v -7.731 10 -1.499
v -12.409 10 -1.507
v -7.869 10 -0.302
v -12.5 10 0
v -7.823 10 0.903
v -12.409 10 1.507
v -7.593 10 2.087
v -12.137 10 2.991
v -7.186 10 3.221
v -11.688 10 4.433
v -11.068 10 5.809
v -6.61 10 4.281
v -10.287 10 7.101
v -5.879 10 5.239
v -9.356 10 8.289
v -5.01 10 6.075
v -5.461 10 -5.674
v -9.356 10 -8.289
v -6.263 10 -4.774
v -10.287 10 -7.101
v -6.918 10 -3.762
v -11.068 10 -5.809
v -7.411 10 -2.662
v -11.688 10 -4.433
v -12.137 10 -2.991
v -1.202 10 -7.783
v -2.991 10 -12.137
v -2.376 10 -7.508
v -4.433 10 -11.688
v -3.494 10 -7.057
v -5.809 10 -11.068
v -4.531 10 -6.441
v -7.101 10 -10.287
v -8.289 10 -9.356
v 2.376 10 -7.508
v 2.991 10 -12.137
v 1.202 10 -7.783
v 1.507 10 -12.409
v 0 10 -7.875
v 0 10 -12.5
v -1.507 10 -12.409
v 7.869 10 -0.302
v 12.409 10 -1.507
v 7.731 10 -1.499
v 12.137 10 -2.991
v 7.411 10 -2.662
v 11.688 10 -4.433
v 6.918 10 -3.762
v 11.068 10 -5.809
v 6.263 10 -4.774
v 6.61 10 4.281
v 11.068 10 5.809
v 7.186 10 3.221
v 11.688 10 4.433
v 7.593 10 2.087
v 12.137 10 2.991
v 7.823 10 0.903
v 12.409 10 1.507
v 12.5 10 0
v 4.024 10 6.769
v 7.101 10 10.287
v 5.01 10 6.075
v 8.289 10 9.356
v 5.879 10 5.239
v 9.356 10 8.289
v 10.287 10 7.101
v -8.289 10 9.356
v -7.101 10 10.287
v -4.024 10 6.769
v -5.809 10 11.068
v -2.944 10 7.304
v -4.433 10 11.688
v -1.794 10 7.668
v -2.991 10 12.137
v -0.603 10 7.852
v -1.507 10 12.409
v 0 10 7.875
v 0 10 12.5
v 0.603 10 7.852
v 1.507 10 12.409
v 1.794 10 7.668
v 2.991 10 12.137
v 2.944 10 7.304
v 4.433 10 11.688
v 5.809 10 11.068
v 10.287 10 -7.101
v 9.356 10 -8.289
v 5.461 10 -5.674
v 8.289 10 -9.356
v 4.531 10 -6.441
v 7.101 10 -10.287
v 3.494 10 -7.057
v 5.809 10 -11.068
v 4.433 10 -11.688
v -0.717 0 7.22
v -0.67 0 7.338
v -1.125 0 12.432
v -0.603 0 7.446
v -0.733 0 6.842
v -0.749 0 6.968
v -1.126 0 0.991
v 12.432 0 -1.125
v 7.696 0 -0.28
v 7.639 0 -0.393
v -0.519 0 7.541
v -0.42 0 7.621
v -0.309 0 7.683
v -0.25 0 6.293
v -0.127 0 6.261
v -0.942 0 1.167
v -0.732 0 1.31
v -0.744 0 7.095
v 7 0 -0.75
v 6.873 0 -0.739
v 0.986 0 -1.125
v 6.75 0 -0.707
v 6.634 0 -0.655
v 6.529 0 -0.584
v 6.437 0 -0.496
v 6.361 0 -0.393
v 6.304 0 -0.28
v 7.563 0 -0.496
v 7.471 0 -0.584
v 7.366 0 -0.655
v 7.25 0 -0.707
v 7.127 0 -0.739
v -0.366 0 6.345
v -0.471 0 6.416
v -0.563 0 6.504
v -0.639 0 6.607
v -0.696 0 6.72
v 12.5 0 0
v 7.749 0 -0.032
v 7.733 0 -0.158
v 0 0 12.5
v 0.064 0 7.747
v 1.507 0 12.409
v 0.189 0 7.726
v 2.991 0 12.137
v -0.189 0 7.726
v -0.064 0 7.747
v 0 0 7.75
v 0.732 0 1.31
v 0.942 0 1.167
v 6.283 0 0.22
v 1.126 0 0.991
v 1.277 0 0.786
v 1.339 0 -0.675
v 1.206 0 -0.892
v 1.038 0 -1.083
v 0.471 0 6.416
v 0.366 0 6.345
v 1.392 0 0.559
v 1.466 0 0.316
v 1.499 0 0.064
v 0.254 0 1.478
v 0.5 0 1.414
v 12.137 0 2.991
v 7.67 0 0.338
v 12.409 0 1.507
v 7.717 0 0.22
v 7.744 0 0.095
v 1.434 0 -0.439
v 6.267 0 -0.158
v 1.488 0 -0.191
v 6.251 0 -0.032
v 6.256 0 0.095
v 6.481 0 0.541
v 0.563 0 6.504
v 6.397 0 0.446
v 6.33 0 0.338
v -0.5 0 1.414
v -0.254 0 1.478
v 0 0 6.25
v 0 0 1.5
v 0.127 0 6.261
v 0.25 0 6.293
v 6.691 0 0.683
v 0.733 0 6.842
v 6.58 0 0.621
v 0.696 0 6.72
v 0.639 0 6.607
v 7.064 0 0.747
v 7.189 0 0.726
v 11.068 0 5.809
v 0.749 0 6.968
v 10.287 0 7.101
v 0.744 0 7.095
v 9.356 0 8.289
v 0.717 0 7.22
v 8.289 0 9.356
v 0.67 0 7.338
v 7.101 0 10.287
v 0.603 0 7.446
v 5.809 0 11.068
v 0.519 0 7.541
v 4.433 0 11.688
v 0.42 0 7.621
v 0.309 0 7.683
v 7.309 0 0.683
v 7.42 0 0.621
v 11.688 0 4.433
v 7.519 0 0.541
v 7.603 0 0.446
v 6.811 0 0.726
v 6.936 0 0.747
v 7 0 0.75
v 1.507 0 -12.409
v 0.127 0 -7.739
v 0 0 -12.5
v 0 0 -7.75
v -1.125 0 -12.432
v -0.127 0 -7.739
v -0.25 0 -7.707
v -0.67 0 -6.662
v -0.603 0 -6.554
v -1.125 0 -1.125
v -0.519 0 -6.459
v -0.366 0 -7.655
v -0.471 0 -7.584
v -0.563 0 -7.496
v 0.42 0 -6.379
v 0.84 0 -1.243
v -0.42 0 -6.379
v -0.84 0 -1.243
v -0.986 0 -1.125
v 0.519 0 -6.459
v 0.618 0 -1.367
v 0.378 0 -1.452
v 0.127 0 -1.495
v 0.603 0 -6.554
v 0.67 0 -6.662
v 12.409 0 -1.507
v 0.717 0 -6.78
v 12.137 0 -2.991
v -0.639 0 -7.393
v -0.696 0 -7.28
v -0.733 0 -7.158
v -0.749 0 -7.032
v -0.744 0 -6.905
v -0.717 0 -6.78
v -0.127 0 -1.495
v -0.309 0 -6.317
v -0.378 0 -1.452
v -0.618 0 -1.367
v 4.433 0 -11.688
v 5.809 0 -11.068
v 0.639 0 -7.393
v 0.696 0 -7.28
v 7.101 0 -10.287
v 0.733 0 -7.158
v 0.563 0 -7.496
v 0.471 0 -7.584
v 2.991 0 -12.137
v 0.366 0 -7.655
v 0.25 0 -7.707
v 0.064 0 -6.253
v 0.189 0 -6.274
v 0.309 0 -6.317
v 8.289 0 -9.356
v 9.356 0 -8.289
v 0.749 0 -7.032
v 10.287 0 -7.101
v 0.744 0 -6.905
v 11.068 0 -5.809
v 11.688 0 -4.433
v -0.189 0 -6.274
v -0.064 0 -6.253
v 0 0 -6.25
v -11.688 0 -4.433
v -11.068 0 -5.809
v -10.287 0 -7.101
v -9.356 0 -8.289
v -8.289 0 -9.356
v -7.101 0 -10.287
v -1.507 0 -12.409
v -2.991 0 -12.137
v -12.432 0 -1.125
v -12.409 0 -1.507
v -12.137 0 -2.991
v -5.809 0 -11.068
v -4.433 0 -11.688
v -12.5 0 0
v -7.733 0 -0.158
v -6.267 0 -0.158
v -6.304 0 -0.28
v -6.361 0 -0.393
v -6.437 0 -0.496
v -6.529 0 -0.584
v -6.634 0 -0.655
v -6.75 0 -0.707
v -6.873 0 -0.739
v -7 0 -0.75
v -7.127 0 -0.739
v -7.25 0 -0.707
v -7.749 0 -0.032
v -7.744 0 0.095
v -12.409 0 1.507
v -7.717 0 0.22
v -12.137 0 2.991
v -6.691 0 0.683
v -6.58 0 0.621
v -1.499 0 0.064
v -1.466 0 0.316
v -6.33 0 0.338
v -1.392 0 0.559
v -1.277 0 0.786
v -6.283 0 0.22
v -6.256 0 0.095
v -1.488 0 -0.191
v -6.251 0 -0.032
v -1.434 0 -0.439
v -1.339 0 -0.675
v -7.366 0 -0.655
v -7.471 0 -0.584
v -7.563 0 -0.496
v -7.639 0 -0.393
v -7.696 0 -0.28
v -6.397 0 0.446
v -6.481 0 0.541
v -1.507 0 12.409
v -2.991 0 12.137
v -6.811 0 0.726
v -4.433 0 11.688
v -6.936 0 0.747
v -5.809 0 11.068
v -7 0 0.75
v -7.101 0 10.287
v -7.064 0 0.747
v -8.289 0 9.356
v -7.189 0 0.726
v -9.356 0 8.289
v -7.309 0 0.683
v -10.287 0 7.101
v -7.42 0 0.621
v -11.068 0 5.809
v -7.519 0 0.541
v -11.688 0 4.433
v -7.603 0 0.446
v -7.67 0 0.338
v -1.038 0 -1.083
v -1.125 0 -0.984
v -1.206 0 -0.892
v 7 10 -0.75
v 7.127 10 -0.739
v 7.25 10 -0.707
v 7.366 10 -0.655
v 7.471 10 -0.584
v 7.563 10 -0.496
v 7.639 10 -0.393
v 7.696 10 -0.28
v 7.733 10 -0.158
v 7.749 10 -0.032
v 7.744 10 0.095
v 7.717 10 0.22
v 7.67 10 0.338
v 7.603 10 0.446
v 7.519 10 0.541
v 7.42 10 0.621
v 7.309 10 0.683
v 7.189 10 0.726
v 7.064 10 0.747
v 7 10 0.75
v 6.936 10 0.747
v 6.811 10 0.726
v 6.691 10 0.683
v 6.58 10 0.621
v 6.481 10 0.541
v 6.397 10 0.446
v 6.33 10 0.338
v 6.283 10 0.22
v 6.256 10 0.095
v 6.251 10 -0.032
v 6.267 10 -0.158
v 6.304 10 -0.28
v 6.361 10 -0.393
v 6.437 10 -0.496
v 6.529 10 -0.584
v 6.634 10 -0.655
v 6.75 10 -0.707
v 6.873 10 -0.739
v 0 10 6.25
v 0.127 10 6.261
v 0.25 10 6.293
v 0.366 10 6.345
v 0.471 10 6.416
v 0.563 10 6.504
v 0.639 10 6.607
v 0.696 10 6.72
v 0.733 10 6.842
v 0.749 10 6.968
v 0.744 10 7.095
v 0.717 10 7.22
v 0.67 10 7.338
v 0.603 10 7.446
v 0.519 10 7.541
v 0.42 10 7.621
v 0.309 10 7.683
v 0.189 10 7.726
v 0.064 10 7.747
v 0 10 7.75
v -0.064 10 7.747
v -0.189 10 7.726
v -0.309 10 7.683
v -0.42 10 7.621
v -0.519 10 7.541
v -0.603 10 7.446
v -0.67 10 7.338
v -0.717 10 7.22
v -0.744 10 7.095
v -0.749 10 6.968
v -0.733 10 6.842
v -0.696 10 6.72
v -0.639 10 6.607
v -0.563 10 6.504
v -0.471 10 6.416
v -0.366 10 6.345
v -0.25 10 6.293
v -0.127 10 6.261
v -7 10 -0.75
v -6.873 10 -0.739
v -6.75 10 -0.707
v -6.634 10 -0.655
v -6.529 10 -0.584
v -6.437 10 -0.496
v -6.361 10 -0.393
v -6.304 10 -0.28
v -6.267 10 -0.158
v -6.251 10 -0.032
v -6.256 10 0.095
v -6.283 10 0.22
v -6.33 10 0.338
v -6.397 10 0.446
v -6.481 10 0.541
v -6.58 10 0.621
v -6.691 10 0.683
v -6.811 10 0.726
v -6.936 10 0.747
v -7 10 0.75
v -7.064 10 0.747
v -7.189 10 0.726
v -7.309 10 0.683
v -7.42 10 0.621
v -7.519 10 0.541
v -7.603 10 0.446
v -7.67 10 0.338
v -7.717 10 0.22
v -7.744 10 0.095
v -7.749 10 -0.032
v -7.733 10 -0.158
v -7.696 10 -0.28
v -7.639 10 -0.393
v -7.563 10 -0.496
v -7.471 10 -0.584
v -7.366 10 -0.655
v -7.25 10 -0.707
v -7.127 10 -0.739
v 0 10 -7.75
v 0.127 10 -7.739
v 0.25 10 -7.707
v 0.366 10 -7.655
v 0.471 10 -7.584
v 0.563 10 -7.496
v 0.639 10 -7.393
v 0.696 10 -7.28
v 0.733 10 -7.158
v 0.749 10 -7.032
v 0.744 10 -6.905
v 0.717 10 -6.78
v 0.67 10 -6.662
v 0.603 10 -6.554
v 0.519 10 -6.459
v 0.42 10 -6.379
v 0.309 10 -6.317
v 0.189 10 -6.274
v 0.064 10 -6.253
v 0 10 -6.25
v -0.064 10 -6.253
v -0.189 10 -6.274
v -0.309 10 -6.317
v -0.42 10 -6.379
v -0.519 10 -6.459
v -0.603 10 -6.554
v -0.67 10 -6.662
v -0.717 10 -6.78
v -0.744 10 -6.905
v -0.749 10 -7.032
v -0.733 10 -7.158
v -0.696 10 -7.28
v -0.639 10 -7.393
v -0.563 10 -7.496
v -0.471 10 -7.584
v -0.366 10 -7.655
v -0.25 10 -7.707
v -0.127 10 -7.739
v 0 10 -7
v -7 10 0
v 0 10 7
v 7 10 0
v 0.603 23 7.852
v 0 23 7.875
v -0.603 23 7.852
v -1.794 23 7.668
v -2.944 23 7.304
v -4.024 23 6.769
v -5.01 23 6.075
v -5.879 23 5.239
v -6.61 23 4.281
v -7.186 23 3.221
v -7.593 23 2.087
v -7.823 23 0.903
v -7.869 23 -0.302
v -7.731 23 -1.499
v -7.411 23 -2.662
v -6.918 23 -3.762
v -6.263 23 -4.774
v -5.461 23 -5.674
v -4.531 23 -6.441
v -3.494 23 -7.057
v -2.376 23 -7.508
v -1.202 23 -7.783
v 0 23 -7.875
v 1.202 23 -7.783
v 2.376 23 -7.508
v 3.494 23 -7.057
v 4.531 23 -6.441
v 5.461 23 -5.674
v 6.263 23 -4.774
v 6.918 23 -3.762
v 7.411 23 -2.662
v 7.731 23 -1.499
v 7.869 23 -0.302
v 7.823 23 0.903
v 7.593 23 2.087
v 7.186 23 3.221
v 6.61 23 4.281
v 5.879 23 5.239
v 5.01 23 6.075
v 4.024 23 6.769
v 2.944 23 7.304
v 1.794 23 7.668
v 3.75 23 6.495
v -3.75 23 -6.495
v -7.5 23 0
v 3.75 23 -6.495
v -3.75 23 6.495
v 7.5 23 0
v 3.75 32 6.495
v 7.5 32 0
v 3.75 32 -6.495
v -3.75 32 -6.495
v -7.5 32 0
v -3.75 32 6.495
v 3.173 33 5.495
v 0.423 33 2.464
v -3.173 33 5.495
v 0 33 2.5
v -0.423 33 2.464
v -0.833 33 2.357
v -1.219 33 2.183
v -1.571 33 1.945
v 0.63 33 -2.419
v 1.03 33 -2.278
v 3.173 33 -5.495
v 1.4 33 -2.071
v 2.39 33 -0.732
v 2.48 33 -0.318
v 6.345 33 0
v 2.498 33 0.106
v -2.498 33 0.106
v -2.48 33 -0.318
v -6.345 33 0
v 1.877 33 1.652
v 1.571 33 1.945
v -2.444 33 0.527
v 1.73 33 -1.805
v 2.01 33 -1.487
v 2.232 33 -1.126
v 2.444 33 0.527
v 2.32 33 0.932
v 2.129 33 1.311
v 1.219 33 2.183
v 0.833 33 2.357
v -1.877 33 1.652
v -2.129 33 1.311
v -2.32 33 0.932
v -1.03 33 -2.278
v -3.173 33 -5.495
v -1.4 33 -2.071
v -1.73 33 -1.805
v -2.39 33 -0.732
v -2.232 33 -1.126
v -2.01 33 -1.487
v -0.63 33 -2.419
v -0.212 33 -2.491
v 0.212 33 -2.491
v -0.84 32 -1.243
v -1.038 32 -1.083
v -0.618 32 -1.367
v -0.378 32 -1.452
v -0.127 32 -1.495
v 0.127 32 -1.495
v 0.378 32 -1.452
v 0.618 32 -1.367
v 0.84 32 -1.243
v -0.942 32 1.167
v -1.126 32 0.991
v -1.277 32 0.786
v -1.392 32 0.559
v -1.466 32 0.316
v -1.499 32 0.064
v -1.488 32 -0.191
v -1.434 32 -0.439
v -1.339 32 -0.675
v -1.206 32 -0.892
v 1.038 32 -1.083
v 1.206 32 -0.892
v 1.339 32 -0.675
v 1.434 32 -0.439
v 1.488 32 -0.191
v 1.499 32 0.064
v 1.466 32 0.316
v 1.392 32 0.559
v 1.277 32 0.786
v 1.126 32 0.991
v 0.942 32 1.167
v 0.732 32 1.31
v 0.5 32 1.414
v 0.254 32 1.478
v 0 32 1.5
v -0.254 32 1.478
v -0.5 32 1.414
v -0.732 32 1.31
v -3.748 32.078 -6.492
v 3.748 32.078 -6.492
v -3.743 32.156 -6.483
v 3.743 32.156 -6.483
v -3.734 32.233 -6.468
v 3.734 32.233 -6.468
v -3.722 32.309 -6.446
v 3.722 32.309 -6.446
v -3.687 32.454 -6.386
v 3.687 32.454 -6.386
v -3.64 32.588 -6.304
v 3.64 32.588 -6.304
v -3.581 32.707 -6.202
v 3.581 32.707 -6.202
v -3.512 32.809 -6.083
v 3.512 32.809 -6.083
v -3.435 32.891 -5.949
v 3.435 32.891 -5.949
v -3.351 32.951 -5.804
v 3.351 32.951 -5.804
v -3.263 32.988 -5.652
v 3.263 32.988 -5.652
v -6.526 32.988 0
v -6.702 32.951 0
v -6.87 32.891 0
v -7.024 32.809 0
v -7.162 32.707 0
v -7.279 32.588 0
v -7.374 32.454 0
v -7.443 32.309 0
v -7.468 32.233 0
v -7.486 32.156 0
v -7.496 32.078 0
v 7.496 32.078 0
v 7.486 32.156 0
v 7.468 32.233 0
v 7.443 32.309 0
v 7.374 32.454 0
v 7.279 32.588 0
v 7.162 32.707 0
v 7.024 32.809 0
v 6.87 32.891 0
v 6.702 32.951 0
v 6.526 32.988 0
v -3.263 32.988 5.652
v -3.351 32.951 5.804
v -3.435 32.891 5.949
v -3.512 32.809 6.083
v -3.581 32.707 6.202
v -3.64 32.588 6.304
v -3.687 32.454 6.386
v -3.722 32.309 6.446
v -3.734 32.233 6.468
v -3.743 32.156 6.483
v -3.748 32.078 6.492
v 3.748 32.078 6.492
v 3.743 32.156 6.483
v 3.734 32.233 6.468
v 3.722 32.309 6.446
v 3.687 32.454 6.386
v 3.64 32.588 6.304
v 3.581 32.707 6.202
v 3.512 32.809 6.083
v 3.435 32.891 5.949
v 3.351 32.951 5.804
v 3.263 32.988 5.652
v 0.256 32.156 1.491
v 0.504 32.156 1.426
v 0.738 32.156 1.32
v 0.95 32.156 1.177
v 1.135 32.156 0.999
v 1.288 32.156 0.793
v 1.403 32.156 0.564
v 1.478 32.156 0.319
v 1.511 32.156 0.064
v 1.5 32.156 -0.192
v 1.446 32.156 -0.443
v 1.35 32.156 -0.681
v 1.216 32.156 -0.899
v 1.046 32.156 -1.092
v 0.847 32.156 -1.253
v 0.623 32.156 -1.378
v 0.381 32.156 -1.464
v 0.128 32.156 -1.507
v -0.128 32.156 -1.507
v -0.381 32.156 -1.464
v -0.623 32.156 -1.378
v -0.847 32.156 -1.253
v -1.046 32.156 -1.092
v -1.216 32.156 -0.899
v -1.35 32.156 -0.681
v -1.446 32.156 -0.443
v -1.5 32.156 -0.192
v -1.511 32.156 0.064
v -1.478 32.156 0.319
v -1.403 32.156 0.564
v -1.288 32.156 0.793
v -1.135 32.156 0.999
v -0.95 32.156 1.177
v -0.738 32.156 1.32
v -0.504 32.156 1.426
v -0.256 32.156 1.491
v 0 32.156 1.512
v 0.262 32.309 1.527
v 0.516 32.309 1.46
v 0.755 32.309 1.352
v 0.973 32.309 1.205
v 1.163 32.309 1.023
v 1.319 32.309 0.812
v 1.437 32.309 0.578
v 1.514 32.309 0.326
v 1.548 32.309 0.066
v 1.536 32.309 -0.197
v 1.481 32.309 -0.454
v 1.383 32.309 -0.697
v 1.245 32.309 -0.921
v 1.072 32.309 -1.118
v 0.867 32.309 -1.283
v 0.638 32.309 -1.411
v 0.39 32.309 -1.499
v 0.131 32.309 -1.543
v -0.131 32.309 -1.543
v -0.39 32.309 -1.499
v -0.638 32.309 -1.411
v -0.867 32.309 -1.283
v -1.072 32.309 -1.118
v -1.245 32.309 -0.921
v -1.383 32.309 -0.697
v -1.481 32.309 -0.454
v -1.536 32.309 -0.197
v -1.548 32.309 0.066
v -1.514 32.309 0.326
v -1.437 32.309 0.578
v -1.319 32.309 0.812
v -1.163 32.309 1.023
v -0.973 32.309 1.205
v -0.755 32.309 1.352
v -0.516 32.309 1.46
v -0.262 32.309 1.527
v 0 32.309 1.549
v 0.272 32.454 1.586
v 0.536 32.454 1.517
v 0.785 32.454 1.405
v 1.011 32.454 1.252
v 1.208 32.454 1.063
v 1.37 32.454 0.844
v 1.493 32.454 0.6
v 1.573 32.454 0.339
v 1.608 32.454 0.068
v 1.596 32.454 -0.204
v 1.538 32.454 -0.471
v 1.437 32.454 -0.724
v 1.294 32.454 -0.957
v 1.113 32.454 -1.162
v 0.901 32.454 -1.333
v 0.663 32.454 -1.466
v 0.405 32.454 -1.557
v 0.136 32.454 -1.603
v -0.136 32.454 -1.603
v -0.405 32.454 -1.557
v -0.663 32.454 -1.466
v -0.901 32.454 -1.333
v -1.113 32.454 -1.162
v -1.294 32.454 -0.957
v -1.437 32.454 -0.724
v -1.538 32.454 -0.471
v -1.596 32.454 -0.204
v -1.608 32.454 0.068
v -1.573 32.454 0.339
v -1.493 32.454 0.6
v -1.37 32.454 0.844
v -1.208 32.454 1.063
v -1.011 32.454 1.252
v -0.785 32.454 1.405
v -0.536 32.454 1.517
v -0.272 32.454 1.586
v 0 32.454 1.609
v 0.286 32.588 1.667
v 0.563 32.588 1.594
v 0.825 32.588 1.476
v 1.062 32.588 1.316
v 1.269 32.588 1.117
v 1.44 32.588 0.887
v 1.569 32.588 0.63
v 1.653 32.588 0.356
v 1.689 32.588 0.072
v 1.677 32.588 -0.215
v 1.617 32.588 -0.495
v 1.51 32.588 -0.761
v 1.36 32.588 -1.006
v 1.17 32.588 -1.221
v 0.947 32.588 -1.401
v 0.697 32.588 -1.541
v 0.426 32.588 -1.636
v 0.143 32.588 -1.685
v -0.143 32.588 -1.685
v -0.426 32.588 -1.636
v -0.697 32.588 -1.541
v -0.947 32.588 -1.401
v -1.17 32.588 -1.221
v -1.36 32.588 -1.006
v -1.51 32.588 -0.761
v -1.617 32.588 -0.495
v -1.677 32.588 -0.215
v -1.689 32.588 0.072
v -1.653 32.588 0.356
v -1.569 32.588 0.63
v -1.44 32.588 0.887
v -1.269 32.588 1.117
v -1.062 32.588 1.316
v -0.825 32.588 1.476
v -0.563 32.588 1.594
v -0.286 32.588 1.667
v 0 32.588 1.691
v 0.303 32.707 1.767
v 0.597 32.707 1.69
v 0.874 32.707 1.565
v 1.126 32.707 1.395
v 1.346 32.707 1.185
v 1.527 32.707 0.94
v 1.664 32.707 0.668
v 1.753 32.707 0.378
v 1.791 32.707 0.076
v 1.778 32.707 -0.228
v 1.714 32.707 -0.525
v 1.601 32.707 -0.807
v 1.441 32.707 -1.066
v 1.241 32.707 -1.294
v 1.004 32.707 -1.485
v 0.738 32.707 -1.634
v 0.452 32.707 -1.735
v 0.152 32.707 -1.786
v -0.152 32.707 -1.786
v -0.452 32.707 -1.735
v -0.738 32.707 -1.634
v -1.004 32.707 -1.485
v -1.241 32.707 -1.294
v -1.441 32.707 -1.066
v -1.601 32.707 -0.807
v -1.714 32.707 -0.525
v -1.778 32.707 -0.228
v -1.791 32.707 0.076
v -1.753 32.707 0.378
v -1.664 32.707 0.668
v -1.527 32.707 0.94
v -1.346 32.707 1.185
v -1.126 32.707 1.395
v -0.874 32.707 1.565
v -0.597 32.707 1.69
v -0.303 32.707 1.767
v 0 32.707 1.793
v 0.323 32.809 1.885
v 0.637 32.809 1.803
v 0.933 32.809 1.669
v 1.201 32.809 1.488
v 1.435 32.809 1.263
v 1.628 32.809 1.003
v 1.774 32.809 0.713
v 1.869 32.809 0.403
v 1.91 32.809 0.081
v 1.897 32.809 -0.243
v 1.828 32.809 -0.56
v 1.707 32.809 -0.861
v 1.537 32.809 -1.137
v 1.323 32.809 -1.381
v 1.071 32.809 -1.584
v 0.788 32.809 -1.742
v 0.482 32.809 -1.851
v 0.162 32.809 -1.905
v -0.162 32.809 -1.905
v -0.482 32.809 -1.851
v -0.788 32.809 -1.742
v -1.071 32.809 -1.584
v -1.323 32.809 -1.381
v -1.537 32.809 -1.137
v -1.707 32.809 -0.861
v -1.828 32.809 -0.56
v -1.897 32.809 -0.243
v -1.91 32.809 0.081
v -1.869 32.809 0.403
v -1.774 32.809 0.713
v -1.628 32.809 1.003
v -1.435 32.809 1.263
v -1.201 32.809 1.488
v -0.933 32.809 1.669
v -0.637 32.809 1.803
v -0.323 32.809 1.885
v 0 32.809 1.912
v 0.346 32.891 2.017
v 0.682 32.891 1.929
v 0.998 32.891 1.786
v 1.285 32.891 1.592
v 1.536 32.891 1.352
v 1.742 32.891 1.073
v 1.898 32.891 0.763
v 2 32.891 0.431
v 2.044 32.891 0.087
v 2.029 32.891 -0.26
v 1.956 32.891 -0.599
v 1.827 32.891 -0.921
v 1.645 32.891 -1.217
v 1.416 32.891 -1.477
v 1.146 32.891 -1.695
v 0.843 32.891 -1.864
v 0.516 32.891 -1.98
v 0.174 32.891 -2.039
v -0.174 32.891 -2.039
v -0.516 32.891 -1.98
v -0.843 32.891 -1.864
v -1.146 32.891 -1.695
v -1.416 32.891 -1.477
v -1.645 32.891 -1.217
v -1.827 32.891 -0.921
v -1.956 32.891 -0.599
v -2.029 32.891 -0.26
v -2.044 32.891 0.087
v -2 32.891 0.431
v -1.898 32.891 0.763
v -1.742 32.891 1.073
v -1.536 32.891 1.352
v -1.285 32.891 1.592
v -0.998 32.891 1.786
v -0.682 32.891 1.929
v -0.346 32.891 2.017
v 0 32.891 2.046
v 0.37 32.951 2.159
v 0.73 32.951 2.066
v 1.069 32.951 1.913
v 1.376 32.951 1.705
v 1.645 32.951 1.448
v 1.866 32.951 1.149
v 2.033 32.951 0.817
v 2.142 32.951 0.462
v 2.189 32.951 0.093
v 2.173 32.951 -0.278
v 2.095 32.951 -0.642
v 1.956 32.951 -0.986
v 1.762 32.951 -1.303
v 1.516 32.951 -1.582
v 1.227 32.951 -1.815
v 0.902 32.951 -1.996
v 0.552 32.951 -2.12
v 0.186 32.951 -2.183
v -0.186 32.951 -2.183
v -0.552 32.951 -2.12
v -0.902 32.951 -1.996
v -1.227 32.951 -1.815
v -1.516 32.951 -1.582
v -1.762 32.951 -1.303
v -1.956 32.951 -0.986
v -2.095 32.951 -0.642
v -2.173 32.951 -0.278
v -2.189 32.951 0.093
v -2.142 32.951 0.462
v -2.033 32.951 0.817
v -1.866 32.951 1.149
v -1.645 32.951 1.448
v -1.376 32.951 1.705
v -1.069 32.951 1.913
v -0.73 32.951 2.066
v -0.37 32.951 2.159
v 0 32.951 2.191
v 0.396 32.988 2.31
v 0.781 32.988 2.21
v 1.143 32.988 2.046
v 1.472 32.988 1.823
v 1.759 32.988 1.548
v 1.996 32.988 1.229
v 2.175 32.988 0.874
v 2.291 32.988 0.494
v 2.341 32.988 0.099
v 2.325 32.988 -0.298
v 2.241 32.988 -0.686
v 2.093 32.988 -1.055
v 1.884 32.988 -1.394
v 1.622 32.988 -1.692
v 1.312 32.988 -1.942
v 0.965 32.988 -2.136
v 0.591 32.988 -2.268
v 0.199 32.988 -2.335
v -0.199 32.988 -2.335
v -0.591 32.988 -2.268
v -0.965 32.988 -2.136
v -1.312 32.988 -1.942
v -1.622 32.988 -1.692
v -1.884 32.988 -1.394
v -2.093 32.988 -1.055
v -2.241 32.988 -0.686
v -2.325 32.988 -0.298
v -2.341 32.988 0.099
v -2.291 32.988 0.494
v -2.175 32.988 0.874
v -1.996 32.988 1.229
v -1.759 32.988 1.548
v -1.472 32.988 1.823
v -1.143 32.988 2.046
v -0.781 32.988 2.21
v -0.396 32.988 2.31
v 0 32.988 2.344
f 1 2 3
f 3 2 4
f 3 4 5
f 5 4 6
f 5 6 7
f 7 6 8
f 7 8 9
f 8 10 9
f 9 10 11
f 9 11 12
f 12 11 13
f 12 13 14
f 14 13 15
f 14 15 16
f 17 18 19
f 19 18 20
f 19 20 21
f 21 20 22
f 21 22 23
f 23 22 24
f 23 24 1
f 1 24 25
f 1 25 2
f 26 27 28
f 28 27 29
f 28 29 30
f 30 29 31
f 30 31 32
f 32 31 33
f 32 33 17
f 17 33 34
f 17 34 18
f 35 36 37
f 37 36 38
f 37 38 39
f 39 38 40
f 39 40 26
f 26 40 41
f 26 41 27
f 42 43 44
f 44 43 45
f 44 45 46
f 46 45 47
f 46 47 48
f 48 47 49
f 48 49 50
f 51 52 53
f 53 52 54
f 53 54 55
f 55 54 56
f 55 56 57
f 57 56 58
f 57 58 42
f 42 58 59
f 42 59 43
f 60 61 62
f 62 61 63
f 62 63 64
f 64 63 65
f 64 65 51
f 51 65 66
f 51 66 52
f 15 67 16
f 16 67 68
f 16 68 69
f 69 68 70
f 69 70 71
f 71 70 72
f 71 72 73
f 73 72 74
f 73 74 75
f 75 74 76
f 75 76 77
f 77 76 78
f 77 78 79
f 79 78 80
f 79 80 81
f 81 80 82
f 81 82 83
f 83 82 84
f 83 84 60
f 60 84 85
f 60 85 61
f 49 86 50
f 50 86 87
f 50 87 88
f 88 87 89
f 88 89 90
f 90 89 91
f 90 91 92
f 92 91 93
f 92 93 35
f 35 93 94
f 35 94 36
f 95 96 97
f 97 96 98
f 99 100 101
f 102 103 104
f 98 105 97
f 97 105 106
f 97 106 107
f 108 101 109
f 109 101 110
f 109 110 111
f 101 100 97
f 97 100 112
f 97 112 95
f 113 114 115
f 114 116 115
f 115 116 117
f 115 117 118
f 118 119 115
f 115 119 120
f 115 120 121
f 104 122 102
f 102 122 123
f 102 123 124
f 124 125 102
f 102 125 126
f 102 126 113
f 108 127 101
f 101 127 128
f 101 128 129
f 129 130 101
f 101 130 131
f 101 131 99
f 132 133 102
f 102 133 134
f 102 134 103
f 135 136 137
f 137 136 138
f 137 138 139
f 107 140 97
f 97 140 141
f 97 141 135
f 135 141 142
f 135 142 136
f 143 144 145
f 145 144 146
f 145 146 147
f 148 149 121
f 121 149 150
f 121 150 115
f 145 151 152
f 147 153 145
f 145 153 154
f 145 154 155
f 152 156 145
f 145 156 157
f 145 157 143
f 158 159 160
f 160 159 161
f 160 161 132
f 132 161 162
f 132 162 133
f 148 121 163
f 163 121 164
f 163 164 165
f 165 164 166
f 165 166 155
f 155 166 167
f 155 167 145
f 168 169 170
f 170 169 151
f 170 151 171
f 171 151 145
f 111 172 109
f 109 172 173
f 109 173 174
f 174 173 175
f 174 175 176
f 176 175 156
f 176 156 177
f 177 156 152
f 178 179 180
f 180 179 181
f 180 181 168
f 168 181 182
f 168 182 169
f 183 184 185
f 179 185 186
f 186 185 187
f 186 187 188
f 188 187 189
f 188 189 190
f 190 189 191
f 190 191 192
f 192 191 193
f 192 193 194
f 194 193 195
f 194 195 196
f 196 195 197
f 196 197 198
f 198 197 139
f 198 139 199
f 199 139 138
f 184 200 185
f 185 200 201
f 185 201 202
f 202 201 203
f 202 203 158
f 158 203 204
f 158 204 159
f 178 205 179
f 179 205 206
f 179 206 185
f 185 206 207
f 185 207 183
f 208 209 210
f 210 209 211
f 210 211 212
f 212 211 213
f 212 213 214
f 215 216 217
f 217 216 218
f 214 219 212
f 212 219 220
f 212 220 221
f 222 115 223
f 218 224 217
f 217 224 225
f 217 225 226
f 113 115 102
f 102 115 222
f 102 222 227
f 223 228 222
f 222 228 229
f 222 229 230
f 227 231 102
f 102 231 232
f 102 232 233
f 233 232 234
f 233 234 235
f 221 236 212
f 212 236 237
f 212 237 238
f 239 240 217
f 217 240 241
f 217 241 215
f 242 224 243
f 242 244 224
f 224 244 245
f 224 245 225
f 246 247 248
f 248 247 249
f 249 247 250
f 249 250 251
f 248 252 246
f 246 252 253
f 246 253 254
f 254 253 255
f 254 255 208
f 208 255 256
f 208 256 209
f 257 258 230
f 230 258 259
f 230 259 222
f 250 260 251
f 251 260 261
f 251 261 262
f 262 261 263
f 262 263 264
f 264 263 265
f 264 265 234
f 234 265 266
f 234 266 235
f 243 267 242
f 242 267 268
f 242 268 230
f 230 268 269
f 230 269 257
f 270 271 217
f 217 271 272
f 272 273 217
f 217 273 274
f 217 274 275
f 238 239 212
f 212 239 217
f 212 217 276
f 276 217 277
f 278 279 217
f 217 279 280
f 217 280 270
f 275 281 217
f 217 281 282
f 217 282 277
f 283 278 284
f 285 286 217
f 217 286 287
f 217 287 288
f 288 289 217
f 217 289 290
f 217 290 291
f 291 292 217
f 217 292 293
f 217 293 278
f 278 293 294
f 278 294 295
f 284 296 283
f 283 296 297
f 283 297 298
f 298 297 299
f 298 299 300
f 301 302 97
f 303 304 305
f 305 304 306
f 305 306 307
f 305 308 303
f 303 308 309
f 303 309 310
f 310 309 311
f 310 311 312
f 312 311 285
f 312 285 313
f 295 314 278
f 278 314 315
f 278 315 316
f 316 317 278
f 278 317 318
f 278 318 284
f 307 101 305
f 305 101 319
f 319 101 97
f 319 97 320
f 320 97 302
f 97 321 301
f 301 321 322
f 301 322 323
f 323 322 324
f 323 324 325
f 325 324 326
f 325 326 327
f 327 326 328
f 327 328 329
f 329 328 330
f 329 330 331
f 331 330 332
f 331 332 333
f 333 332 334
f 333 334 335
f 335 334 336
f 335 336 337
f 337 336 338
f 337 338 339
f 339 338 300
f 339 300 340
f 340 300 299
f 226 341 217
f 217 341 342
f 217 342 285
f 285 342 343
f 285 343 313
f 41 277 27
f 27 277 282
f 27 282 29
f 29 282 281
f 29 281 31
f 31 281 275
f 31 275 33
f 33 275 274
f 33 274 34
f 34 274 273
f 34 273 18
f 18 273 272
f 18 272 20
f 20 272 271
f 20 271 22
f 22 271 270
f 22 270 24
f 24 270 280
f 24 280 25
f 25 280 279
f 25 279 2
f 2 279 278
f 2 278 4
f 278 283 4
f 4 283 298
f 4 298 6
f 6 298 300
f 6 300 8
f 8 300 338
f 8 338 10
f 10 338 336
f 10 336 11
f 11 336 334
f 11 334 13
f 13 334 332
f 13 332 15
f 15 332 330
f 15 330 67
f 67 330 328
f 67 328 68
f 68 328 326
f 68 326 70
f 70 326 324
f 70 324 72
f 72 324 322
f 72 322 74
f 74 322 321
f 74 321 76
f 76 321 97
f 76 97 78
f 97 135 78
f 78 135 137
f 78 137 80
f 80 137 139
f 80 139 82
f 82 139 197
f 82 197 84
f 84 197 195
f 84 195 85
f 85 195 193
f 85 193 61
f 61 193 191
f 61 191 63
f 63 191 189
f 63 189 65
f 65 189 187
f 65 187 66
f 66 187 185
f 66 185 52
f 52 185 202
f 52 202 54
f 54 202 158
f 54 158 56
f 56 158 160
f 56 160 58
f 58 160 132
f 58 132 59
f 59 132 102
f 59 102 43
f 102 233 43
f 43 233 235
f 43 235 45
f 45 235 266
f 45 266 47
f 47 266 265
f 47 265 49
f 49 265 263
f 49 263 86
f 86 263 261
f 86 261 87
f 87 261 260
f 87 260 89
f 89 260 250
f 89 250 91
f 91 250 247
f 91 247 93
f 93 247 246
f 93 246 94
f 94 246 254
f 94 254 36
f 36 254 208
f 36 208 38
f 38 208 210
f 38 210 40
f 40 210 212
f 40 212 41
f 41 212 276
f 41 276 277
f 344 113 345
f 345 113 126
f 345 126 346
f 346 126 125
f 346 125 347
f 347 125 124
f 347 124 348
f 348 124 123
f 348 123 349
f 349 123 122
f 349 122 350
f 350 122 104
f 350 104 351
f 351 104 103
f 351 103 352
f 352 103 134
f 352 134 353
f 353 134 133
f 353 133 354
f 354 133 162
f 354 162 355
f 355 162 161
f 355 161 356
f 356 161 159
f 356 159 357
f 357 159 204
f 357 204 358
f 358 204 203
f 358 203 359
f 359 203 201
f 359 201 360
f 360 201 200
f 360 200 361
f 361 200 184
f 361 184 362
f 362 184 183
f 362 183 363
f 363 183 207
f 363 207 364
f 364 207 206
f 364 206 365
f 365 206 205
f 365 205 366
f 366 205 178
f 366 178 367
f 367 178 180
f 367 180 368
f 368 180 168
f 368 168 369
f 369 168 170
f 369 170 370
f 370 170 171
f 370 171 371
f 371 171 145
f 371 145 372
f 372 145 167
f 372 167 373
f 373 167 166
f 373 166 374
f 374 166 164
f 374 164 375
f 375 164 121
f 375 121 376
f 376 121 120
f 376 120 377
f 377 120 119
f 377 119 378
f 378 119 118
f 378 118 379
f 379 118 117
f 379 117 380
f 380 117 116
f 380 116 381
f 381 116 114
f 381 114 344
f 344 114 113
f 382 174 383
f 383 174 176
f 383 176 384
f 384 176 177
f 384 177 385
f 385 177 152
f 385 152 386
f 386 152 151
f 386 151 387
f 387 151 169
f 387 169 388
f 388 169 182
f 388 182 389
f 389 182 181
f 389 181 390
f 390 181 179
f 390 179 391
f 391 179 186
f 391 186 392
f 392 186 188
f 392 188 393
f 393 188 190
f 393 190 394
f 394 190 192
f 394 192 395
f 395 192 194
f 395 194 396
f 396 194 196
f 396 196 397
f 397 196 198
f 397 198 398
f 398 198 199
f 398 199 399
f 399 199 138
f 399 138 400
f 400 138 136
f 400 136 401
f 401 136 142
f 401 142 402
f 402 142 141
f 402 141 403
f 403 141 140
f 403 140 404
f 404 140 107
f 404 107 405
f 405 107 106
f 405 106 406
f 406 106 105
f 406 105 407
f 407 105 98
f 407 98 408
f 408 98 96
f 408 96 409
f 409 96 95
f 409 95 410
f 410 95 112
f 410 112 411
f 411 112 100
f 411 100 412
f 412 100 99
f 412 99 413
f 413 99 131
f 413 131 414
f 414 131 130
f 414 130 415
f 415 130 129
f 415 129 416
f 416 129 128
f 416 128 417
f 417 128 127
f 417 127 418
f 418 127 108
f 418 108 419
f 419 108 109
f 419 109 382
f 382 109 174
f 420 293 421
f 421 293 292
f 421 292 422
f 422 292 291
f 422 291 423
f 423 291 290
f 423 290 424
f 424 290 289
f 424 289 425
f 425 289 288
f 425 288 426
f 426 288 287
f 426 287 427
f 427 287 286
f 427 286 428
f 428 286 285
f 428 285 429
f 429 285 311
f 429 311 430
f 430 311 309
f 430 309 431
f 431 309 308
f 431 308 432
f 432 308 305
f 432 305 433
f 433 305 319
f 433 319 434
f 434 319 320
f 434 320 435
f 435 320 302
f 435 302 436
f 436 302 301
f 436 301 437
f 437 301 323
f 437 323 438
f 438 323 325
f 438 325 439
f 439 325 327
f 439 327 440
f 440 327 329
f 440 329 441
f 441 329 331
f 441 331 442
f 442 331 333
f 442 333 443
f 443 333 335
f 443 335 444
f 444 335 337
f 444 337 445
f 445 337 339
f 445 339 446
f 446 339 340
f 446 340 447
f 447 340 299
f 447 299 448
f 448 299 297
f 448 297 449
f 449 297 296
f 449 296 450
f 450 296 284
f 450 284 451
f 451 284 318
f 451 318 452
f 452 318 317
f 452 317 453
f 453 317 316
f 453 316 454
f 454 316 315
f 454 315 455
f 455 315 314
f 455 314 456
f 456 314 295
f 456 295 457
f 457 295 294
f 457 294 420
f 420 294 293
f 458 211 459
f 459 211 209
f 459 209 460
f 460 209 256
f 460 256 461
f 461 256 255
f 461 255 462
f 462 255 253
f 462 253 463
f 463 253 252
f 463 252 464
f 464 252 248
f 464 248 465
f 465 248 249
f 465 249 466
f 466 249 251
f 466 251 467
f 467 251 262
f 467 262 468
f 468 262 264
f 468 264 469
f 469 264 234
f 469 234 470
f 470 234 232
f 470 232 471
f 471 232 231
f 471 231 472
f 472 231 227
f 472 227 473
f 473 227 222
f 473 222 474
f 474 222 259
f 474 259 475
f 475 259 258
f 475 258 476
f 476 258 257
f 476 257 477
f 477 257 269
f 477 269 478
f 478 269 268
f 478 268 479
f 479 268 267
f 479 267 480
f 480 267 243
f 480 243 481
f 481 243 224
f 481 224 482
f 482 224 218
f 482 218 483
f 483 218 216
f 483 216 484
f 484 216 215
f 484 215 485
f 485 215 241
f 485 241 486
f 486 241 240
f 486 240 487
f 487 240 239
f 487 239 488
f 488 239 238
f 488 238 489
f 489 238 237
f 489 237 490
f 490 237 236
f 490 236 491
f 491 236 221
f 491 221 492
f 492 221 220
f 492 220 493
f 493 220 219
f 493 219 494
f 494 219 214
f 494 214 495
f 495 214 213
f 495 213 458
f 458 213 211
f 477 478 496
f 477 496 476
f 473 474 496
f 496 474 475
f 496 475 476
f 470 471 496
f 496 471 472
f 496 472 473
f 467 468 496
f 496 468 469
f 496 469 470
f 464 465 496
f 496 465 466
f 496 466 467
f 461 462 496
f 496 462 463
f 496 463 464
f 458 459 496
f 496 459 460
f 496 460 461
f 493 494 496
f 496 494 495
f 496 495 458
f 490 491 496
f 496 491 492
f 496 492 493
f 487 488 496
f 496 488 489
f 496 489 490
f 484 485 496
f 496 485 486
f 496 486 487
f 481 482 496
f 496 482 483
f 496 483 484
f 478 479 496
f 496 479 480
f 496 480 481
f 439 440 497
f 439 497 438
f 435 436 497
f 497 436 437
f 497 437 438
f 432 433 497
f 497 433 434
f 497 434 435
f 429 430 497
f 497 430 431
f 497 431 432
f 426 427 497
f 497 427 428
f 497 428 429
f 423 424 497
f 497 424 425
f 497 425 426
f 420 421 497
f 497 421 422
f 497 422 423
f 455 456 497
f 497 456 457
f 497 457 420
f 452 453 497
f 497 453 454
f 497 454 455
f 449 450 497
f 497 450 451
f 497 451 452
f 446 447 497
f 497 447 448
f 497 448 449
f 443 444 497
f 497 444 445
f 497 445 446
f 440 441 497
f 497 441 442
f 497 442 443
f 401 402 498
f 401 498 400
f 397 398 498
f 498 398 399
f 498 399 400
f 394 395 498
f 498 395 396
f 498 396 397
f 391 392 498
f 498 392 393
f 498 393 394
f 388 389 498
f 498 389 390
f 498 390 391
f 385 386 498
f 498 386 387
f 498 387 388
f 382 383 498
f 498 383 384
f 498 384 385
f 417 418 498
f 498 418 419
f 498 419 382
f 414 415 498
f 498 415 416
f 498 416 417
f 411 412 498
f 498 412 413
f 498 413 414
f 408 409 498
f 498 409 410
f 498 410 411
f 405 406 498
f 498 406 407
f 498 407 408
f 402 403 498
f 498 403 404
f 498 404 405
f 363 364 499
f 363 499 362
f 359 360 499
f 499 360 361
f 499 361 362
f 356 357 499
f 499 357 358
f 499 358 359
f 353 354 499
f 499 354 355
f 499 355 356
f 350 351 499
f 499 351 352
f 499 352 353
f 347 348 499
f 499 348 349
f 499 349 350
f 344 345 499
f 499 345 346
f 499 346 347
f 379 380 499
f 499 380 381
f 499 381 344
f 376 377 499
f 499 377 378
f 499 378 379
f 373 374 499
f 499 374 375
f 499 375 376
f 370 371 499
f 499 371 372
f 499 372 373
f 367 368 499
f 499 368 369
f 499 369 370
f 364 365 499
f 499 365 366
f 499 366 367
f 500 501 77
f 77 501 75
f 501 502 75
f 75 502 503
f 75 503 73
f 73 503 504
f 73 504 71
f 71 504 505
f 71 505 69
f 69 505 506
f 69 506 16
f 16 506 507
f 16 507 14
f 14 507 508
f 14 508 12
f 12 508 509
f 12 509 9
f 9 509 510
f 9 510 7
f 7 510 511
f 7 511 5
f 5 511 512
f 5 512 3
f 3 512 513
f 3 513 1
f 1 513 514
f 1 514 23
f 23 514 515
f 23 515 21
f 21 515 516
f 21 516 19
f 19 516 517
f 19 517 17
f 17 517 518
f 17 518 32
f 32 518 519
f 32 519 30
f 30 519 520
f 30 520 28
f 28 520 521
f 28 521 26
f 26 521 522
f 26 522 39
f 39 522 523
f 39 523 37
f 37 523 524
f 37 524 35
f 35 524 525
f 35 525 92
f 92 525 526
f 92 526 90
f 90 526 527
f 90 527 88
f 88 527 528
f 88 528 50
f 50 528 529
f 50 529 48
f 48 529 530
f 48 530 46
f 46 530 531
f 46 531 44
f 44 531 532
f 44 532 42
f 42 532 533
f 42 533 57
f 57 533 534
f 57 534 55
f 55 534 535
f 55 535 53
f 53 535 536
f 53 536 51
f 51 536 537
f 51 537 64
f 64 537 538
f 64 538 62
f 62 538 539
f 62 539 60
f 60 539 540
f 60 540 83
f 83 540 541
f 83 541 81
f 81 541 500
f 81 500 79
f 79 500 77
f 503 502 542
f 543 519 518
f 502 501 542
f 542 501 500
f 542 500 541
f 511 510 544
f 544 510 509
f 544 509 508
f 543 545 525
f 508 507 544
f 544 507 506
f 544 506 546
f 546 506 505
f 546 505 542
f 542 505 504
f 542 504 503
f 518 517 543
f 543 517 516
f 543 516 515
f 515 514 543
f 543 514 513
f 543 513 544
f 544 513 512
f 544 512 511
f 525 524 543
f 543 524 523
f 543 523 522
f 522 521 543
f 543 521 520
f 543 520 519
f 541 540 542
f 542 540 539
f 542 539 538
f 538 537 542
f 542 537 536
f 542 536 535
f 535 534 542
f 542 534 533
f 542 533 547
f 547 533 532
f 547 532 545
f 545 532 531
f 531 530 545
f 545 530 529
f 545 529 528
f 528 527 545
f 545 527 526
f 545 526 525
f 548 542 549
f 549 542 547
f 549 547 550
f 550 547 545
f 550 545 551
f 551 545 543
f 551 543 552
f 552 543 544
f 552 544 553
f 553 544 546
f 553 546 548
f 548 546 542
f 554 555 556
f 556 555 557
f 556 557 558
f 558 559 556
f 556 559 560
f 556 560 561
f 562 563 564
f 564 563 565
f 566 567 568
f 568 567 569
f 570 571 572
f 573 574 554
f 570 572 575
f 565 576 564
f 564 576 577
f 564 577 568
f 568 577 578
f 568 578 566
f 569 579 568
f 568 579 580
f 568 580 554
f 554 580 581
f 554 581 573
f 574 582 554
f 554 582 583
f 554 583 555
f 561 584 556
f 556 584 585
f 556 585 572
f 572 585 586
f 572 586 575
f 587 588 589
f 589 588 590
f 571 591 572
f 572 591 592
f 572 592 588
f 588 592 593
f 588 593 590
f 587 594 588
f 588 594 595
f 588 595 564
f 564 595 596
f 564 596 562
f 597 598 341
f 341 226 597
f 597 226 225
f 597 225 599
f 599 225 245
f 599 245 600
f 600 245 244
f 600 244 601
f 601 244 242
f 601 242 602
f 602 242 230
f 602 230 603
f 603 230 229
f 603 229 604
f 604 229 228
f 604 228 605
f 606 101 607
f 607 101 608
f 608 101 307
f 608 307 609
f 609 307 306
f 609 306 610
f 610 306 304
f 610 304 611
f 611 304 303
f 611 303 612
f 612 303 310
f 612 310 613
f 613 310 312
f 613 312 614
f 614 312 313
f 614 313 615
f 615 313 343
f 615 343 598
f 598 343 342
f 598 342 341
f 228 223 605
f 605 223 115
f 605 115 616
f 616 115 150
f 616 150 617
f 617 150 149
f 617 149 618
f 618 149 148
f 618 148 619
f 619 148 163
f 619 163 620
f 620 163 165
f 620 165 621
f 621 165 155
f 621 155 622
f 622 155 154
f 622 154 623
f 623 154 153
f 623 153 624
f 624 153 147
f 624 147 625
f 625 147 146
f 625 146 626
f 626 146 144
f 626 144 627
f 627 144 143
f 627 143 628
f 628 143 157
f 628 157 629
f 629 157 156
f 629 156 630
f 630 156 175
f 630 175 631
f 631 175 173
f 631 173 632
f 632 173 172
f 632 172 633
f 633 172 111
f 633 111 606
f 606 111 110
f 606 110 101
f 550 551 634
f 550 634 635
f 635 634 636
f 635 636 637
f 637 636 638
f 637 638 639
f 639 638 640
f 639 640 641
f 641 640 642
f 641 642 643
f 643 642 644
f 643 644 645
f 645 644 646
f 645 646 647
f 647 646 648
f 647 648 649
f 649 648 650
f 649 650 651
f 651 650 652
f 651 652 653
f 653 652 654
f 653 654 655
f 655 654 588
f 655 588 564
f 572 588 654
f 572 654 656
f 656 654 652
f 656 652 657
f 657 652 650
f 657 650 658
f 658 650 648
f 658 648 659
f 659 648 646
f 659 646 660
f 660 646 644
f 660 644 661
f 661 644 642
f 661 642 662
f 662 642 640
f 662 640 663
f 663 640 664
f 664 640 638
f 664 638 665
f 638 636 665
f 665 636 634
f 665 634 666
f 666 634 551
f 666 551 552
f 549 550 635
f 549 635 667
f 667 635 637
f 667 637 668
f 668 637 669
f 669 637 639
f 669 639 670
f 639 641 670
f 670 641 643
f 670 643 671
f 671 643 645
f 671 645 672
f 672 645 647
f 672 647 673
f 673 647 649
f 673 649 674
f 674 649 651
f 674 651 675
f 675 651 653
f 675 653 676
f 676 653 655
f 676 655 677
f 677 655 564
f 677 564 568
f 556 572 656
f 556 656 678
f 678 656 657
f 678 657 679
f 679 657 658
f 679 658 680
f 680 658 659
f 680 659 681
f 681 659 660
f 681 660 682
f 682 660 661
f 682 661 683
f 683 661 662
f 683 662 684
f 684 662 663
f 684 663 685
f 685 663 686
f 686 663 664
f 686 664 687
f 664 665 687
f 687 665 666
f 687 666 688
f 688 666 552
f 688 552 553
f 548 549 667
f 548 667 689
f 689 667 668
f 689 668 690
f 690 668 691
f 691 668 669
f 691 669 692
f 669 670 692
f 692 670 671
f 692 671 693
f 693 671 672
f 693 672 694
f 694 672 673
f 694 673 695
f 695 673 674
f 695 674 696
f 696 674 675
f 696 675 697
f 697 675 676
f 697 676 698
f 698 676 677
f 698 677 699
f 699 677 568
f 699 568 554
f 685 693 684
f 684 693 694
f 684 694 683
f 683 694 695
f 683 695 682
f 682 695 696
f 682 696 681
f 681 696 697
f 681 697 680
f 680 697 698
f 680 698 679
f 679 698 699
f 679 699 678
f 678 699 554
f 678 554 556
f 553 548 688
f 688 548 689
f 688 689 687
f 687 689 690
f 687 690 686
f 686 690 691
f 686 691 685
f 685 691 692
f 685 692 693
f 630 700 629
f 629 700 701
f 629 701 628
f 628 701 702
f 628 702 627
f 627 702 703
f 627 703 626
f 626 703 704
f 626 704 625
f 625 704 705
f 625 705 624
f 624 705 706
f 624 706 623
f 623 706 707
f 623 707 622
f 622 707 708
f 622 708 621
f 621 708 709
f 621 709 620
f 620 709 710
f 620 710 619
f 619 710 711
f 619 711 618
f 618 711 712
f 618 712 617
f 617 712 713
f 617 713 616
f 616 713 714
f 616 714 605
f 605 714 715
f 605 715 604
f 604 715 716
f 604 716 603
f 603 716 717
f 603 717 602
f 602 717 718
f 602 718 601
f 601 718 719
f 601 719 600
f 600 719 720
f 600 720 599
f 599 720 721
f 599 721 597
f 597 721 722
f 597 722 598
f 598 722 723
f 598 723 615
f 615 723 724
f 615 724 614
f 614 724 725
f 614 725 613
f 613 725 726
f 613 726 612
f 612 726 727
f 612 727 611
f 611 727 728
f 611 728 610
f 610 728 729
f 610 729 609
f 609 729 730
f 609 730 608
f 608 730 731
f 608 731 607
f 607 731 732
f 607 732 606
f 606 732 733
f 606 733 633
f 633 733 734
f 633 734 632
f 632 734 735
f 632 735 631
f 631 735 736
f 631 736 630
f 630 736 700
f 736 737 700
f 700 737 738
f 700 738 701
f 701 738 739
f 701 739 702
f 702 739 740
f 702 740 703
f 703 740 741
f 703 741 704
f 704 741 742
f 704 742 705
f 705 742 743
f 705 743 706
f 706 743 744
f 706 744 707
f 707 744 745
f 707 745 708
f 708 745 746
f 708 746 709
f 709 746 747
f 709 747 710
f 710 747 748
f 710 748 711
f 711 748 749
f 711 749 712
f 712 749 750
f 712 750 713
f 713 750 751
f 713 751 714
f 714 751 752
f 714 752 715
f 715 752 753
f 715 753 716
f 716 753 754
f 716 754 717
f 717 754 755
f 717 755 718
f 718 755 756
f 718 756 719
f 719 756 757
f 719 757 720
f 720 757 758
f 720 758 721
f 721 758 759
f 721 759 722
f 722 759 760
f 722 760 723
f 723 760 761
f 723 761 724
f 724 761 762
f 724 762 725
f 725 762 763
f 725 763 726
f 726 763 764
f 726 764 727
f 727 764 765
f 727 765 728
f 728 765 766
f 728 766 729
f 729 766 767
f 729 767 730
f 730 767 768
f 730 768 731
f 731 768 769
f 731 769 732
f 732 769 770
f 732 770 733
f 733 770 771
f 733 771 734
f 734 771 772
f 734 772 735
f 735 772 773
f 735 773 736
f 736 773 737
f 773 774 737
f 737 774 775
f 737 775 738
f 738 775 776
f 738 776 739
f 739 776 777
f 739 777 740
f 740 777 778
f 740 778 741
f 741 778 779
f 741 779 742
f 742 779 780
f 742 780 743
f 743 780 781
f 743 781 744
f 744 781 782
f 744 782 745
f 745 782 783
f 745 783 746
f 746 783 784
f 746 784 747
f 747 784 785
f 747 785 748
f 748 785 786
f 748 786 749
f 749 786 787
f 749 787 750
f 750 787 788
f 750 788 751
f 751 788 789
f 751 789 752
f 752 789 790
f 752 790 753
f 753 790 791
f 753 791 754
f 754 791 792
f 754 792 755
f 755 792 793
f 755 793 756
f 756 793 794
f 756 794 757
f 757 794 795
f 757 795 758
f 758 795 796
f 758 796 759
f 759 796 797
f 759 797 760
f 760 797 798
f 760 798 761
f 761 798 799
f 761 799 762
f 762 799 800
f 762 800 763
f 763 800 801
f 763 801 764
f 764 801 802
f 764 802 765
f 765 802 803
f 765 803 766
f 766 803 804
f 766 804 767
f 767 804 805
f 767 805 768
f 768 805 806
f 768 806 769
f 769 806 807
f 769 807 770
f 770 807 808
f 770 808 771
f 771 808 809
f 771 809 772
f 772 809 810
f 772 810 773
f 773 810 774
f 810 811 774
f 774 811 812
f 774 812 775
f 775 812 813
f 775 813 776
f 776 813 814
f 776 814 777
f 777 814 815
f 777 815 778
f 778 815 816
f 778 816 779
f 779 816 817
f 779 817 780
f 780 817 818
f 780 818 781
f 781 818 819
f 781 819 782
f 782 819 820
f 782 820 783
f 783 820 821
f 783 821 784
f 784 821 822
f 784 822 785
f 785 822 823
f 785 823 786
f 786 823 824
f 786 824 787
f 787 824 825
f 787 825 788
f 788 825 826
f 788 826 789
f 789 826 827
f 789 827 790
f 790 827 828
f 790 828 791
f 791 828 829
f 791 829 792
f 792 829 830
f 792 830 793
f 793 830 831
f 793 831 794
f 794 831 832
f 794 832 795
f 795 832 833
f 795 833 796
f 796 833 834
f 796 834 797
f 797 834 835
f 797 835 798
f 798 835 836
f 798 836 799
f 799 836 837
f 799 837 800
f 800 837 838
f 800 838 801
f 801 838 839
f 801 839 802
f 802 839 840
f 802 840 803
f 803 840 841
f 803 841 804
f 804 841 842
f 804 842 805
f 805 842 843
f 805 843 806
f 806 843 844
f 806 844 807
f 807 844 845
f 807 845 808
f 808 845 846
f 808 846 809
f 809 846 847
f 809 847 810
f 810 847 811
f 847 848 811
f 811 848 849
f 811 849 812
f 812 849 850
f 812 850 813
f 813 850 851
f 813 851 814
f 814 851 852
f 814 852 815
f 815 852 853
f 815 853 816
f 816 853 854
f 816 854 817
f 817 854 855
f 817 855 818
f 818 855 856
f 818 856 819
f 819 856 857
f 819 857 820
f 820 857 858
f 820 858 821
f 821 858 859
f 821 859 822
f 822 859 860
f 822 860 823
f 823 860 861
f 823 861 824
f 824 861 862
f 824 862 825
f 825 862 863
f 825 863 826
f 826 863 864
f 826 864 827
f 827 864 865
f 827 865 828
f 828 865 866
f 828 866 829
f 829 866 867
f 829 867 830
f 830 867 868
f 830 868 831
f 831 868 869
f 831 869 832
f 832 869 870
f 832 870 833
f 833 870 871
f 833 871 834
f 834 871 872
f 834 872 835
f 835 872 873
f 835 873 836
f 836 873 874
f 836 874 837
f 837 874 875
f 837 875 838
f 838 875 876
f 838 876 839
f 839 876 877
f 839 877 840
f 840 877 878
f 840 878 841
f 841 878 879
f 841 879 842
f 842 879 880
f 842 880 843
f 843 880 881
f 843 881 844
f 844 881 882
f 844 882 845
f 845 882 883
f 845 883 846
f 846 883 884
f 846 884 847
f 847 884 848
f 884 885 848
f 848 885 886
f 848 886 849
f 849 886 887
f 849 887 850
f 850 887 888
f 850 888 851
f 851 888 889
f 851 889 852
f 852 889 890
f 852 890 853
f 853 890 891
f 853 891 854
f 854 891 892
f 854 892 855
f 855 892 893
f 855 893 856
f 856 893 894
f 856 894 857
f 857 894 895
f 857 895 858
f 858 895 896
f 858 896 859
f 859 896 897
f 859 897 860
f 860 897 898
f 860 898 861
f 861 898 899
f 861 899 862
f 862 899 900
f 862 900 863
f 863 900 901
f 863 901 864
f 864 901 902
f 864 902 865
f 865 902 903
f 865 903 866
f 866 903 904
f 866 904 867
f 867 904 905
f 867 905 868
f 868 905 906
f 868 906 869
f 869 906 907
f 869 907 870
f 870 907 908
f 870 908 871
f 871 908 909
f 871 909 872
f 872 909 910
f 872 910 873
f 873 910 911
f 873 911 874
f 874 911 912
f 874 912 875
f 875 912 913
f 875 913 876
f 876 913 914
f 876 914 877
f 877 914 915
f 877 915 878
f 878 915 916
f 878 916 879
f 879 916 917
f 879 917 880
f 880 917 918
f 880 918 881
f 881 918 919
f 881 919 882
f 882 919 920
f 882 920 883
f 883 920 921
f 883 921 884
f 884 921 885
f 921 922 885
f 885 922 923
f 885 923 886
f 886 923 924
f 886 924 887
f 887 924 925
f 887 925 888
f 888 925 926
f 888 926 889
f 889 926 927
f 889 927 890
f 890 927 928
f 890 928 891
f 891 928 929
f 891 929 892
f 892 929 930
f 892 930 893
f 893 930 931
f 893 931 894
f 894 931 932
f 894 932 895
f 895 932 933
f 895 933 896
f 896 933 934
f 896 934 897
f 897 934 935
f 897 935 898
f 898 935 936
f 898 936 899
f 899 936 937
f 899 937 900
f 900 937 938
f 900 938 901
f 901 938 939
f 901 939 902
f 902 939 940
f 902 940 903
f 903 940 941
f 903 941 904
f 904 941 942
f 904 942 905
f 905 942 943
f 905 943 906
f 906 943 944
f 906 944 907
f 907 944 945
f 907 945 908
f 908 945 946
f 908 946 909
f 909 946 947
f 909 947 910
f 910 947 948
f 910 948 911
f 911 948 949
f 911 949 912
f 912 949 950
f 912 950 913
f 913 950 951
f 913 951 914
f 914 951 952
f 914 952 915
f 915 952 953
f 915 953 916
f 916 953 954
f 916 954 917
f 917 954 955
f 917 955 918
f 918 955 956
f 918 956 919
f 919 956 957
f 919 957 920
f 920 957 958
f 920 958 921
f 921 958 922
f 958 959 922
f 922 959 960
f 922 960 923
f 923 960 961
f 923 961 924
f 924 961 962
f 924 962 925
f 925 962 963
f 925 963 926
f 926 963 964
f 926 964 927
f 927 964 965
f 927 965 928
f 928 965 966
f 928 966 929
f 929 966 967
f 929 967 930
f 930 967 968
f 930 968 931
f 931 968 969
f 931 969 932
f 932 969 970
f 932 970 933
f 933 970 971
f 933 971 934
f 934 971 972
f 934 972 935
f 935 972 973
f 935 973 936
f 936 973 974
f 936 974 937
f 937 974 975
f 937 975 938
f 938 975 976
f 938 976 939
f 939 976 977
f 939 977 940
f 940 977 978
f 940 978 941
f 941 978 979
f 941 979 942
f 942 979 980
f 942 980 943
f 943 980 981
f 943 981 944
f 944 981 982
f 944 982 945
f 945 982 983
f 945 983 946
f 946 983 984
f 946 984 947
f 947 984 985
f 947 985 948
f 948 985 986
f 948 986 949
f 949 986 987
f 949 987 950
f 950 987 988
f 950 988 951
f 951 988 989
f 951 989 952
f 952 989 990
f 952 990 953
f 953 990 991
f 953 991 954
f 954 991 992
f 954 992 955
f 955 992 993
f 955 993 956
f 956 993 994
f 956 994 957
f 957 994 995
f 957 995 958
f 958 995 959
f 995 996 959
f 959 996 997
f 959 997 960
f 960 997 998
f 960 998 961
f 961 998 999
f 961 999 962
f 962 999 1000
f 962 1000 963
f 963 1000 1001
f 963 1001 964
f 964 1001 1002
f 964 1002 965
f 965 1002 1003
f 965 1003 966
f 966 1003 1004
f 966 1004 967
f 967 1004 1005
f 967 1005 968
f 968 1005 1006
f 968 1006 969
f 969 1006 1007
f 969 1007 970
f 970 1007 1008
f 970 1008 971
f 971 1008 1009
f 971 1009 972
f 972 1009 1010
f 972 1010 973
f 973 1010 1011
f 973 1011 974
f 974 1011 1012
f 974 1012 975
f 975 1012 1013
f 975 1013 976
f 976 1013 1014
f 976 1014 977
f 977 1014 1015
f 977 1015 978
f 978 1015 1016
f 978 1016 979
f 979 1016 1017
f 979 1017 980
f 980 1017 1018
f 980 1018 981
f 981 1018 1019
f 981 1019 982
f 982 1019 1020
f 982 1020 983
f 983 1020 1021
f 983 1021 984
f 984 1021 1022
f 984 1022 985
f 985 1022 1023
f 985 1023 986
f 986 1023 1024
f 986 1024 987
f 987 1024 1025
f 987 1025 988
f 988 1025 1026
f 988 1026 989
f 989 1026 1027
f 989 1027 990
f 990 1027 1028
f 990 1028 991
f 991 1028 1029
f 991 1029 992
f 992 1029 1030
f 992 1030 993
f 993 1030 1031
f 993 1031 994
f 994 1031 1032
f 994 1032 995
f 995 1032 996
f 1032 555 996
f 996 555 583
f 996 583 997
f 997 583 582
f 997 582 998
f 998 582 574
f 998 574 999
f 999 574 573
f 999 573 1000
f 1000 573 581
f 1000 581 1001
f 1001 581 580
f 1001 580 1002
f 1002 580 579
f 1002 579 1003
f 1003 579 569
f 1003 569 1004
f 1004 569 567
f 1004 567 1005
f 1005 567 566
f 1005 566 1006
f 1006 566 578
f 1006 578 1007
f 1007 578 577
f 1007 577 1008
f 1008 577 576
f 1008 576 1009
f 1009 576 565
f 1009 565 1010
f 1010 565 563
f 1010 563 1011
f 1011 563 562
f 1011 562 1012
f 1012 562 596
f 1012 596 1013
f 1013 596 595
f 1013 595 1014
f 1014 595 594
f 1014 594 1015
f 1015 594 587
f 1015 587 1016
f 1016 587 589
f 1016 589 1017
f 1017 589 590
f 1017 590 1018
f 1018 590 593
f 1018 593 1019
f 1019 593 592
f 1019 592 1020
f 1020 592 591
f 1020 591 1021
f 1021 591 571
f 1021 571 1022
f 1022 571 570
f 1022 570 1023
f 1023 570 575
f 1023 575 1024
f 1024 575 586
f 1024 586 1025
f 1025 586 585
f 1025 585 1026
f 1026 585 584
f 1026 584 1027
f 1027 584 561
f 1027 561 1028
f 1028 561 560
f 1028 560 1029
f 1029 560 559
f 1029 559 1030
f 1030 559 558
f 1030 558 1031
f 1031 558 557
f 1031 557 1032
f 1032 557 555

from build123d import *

# Parameters (mm, degrees)
CROQUIS1_R              = 12.5
CROQUIS1_R_2            = 0.75
SALIENTE_EXTRUIR1_DEPTH = 10
CROQUIS2_R              = 7.875
SALIENTE_EXTRUIR2_DEPTH = 13
SALIENTE_EXTRUIR3_DEPTH = 10
CROQUIS4_R              = 1.5
CORTAR_EXTRUIR1_DEPTH   = 38.436613095
REDONDEO1_R             = 1


with BuildPart() as part:
    # Croquis1 → Saliente-Extruir1 (new body)
    with BuildSketch(Plane(origin=(0, 0, 0), x_dir=(1, 0, 0), z_dir=(0, 1, 0))):
        with Locations(Location((0, 0, 0), (0, 0, 270))):
            Circle(CROQUIS1_R)
        with Locations(Location((7, 0, 0), (0, 0, 270))):
            Circle(CROQUIS1_R_2, mode=Mode.SUBTRACT)
        with Locations(Location((0, -7, 0), (0, 0, 270))):
            Circle(CROQUIS1_R_2, mode=Mode.SUBTRACT)
        with Locations(Location((-7, 0, 0), (0, 0, 270))):
            Circle(CROQUIS1_R_2, mode=Mode.SUBTRACT)
        with Locations(Location((0, 7, 0), (0, 0, 270))):
            Circle(CROQUIS1_R_2, mode=Mode.SUBTRACT)
    extrude(amount=SALIENTE_EXTRUIR1_DEPTH)

    # Croquis2 → Saliente-Extruir2 (add)
    with BuildSketch(Plane(origin=(0, 10, 0), x_dir=(1, 0, 0), z_dir=(0, 1, 0))):
        with Locations(Location((0, 0, 0), (0, 0, 90))):
            Circle(CROQUIS2_R)
    extrude(amount=SALIENTE_EXTRUIR2_DEPTH)

    # Croquis3 → Saliente-Extruir3 (add)
    with BuildSketch(Plane(origin=(0, 23, 0), x_dir=(1, 0, 0), z_dir=(0, 1, 0))):
        Polygon((7.5, 0), (3.75, 6.495190528), (-3.75, 6.495190528), (-7.5, 0), (-3.75, -6.495190528), (3.75, -6.495190528), align=None)
    extrude(amount=SALIENTE_EXTRUIR3_DEPTH)

    # Croquis4 → Cortar-Extruir1 (cut, through all)
    with BuildSketch(Plane(origin=(0, 33, 0), x_dir=(1, 0, 0), z_dir=(0, 1, 0))):
        with Locations(Location((0, 0, 0), (0, 0, 270))):
            Circle(CROQUIS4_R)
    extrude(amount=-CORTAR_EXTRUIR1_DEPTH, mode=Mode.SUBTRACT)

    # Redondeo1
    redondeo1_edges = [part.edges().sort_by_distance(p)[0] for p in [
        (5.625, 33, 3.247595264),
        (5.625, 33, -3.247595264),
        (0, 33, -6.495190528),
        (-5.625, 33, -3.247595264),
        (-5.625, 33, 3.247595264),
        (0, 33, 6.495190528),
        (0, 33, -1.5),
    ]]
    fillet(redondeo1_edges, radius=REDONDEO1_R)


solid = part.part
